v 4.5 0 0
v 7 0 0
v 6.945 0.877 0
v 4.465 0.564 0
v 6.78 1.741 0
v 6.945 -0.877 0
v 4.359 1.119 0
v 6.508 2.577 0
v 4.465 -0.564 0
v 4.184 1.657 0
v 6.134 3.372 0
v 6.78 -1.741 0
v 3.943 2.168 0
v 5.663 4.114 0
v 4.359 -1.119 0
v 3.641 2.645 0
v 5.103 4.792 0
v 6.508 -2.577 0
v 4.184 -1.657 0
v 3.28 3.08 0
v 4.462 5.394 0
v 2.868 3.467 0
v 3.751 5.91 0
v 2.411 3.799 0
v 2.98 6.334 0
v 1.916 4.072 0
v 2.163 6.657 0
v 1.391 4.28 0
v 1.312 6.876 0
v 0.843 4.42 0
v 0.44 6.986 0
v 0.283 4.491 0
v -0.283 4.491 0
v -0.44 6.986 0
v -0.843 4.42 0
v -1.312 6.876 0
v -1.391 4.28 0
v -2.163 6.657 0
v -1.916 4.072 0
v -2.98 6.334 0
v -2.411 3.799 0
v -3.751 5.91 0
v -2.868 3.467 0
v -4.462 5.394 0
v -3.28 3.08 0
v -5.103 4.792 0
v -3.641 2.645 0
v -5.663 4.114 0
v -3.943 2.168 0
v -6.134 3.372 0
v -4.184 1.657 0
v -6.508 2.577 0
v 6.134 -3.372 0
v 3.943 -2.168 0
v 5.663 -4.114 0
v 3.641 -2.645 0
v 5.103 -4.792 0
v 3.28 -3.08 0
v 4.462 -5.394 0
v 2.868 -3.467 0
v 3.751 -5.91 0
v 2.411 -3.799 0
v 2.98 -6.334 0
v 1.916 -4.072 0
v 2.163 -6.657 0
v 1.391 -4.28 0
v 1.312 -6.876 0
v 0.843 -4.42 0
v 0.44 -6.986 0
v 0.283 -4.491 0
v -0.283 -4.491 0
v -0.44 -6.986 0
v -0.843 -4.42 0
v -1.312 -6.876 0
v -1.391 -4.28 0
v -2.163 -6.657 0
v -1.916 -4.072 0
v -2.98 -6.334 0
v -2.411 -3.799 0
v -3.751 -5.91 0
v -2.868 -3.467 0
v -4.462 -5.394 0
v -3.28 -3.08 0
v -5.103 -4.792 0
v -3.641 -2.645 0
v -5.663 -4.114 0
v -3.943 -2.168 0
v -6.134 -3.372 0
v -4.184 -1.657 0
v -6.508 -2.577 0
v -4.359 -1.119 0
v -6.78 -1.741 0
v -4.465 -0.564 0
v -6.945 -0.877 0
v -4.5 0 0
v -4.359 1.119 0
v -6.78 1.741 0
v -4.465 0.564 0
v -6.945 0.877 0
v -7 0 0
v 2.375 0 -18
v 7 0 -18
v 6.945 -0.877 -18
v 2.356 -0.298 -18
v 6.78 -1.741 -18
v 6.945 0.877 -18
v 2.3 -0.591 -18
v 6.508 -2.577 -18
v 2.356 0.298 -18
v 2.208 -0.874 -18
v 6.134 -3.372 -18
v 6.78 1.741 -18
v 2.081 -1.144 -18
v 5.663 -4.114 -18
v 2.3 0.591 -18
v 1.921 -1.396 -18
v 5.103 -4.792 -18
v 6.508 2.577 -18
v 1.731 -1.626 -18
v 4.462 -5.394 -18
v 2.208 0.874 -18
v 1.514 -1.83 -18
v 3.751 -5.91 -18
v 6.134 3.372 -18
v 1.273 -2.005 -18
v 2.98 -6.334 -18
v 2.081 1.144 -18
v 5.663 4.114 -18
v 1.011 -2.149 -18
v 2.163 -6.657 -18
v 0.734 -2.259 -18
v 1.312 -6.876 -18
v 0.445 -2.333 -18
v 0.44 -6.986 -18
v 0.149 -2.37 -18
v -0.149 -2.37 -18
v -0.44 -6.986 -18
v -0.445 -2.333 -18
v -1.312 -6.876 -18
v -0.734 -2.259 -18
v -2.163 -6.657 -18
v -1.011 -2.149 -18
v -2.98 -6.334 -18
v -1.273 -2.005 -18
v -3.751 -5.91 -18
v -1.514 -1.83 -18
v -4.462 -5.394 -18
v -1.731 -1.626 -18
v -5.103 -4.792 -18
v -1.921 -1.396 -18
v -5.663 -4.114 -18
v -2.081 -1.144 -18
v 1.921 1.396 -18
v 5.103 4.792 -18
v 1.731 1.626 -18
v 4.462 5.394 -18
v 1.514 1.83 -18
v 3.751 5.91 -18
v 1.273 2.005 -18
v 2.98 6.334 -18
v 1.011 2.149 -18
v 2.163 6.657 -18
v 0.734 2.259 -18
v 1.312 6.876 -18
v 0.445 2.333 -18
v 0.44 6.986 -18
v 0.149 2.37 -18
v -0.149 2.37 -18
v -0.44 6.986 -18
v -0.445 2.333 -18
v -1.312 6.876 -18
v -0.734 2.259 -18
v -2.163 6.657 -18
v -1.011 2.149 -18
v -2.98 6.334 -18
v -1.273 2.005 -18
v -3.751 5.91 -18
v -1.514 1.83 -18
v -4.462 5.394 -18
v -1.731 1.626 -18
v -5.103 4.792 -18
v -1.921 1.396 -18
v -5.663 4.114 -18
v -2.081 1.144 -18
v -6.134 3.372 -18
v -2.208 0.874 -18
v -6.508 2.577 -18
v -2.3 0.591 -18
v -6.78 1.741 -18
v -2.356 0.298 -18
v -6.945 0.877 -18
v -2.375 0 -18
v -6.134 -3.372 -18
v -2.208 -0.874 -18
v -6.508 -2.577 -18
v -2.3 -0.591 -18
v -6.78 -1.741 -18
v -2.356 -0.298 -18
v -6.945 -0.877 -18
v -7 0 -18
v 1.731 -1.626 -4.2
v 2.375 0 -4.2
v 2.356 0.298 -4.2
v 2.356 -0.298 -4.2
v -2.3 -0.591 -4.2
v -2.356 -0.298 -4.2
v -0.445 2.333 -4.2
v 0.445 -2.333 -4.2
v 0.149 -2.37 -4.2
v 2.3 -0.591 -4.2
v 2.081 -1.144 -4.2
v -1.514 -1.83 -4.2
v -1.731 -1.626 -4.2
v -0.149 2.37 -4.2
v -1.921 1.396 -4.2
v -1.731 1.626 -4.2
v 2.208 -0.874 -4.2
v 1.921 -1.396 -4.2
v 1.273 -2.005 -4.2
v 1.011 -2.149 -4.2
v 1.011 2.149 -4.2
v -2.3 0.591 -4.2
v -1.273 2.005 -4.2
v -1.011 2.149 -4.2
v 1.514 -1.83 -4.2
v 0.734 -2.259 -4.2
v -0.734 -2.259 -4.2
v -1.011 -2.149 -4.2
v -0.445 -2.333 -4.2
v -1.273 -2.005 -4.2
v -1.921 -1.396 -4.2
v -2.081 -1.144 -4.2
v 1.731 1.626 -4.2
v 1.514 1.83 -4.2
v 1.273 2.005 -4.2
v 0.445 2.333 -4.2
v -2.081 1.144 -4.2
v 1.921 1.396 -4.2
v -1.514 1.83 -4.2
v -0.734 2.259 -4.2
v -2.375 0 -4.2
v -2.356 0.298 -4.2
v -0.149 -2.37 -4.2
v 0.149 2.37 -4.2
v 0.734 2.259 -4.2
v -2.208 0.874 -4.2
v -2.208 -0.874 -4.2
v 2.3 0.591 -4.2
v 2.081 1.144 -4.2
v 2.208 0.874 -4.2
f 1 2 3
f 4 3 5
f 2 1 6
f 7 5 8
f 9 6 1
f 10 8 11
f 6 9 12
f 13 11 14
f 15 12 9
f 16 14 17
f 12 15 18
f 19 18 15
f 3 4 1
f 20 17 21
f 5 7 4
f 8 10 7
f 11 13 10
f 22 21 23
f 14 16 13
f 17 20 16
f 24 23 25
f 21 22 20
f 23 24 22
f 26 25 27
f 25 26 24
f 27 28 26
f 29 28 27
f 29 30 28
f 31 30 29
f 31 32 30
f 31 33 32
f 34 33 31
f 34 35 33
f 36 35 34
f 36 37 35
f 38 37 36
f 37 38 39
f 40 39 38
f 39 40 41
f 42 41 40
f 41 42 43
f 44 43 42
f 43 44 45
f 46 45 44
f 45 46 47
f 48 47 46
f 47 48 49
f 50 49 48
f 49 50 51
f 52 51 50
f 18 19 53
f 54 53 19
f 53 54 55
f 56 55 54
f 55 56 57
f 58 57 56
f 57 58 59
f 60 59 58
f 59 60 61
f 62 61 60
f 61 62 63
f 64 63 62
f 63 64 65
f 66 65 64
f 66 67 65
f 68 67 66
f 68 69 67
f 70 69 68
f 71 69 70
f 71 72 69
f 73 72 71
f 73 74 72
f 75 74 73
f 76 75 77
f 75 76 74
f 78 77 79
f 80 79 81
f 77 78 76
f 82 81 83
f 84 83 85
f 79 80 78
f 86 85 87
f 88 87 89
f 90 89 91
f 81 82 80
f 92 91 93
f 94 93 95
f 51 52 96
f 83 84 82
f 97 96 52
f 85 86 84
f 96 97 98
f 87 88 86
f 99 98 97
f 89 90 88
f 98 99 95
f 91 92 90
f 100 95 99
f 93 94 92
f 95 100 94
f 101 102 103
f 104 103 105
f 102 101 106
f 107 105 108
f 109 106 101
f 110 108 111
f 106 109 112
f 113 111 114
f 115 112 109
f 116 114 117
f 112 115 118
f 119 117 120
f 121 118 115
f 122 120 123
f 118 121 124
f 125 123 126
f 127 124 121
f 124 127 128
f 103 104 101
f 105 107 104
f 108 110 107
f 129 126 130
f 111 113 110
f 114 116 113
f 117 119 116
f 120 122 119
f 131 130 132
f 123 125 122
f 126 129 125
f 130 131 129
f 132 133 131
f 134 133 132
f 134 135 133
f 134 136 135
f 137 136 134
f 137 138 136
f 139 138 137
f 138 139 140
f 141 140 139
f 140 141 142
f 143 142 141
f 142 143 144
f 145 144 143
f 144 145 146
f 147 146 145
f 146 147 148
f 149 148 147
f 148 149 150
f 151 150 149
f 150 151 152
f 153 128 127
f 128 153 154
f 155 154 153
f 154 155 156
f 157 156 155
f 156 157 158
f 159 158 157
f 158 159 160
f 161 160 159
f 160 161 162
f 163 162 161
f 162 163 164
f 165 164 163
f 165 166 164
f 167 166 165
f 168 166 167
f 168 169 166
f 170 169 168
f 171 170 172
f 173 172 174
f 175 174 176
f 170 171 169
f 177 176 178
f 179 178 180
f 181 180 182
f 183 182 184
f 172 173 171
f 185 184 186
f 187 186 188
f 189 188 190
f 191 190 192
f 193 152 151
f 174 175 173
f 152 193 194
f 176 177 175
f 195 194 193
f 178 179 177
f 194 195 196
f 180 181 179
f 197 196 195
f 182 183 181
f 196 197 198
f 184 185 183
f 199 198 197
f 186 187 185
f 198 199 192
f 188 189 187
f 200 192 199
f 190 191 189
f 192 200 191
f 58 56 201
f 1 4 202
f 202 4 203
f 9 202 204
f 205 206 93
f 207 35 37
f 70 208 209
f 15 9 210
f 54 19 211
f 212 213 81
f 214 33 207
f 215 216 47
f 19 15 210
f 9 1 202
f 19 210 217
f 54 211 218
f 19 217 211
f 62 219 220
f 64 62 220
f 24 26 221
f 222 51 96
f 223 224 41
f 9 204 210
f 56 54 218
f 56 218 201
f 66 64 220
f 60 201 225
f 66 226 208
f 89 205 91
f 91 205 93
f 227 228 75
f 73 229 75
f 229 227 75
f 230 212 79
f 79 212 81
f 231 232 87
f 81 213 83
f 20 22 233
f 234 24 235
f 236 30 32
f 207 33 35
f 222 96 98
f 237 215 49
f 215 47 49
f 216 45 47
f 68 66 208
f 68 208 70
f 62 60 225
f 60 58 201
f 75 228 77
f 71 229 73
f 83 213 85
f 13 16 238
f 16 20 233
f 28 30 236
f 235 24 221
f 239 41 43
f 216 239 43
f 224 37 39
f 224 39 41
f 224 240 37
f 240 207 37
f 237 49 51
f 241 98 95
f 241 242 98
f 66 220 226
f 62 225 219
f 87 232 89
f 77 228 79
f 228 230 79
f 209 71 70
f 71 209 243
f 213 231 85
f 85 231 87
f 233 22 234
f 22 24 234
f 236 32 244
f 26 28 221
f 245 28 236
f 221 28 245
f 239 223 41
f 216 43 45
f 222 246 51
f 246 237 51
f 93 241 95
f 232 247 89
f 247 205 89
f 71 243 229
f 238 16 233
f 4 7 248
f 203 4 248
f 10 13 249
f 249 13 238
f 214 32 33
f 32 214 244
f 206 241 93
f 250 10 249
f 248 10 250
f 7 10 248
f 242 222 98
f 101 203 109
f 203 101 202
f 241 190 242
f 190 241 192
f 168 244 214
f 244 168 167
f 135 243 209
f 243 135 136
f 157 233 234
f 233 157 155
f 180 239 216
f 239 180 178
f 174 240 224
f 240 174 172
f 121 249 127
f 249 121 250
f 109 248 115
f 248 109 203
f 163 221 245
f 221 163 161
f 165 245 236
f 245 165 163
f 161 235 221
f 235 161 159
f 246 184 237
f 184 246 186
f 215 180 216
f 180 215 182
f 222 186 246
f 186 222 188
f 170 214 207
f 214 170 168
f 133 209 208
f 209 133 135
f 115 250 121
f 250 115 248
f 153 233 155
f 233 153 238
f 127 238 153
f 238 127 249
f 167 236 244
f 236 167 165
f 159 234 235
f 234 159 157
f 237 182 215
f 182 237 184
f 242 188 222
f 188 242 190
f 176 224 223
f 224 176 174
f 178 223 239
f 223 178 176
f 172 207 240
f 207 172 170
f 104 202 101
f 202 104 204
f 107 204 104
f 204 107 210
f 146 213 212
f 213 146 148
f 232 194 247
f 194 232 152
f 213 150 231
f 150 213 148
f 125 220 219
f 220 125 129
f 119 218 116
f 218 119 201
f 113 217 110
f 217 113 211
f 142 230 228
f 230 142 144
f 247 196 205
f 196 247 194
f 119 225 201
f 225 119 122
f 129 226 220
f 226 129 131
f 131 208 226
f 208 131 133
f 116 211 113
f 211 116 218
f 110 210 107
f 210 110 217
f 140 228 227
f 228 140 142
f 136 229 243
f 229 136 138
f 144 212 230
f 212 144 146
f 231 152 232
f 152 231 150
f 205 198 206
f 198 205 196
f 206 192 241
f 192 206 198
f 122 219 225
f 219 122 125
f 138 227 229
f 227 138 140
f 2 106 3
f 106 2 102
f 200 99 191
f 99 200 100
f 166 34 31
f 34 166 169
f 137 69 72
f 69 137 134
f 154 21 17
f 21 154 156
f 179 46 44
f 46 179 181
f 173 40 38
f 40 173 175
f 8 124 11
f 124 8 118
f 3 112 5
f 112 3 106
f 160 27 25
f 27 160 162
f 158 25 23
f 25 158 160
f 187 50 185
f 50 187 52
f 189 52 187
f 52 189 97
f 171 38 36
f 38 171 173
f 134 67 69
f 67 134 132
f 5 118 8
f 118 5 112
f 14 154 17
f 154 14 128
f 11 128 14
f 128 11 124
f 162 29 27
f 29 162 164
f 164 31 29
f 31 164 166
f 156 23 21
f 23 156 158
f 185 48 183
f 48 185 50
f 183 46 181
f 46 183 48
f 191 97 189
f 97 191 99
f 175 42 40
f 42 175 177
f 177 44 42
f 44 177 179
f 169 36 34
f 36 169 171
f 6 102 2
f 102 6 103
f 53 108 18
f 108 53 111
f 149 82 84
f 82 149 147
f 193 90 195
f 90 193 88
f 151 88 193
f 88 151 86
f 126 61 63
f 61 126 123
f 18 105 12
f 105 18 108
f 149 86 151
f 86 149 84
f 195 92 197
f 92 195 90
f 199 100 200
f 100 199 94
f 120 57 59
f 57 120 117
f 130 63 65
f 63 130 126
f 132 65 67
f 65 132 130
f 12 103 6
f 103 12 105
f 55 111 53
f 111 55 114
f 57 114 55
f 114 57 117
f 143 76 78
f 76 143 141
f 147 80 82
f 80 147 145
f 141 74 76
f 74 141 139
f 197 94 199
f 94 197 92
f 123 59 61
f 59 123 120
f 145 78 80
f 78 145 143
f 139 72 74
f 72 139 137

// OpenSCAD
$fn = 50;


difference() {
	union() {
		translate(v = [0, 0, -18.0000000000]) {
			cylinder(h = 18, r = 7.0000000000);
		}
		cylinder(h = 0, r = 17.0000000000);
	}
	union() {
		translate(v = [0, 0, 0]) {
			rotate(a = [0, 0, 0]) {
				difference() {
					union() {
						#translate(v = [0, 0, -18.0000000000]) {
							cylinder(h = 18, r = 2.2500000000);
						}
						#translate(v = [0, 0, -4.2000000000]) {
							cylinder(h = 4.2000000000, r = 7.0000000000, r1 = 2.3750000000, r2 = 4.5000000000);
						}
						#translate(v = [0, 0, -18.0000000000]) {
							cylinder(h = 18, r = 2.3750000000);
						}
						#translate(v = [0, 0, -18.0000000000]) {
							cylinder(h = 18, r = 2.2500000000);
						}
					}
					union();
				}
			}
		}
	}
}
